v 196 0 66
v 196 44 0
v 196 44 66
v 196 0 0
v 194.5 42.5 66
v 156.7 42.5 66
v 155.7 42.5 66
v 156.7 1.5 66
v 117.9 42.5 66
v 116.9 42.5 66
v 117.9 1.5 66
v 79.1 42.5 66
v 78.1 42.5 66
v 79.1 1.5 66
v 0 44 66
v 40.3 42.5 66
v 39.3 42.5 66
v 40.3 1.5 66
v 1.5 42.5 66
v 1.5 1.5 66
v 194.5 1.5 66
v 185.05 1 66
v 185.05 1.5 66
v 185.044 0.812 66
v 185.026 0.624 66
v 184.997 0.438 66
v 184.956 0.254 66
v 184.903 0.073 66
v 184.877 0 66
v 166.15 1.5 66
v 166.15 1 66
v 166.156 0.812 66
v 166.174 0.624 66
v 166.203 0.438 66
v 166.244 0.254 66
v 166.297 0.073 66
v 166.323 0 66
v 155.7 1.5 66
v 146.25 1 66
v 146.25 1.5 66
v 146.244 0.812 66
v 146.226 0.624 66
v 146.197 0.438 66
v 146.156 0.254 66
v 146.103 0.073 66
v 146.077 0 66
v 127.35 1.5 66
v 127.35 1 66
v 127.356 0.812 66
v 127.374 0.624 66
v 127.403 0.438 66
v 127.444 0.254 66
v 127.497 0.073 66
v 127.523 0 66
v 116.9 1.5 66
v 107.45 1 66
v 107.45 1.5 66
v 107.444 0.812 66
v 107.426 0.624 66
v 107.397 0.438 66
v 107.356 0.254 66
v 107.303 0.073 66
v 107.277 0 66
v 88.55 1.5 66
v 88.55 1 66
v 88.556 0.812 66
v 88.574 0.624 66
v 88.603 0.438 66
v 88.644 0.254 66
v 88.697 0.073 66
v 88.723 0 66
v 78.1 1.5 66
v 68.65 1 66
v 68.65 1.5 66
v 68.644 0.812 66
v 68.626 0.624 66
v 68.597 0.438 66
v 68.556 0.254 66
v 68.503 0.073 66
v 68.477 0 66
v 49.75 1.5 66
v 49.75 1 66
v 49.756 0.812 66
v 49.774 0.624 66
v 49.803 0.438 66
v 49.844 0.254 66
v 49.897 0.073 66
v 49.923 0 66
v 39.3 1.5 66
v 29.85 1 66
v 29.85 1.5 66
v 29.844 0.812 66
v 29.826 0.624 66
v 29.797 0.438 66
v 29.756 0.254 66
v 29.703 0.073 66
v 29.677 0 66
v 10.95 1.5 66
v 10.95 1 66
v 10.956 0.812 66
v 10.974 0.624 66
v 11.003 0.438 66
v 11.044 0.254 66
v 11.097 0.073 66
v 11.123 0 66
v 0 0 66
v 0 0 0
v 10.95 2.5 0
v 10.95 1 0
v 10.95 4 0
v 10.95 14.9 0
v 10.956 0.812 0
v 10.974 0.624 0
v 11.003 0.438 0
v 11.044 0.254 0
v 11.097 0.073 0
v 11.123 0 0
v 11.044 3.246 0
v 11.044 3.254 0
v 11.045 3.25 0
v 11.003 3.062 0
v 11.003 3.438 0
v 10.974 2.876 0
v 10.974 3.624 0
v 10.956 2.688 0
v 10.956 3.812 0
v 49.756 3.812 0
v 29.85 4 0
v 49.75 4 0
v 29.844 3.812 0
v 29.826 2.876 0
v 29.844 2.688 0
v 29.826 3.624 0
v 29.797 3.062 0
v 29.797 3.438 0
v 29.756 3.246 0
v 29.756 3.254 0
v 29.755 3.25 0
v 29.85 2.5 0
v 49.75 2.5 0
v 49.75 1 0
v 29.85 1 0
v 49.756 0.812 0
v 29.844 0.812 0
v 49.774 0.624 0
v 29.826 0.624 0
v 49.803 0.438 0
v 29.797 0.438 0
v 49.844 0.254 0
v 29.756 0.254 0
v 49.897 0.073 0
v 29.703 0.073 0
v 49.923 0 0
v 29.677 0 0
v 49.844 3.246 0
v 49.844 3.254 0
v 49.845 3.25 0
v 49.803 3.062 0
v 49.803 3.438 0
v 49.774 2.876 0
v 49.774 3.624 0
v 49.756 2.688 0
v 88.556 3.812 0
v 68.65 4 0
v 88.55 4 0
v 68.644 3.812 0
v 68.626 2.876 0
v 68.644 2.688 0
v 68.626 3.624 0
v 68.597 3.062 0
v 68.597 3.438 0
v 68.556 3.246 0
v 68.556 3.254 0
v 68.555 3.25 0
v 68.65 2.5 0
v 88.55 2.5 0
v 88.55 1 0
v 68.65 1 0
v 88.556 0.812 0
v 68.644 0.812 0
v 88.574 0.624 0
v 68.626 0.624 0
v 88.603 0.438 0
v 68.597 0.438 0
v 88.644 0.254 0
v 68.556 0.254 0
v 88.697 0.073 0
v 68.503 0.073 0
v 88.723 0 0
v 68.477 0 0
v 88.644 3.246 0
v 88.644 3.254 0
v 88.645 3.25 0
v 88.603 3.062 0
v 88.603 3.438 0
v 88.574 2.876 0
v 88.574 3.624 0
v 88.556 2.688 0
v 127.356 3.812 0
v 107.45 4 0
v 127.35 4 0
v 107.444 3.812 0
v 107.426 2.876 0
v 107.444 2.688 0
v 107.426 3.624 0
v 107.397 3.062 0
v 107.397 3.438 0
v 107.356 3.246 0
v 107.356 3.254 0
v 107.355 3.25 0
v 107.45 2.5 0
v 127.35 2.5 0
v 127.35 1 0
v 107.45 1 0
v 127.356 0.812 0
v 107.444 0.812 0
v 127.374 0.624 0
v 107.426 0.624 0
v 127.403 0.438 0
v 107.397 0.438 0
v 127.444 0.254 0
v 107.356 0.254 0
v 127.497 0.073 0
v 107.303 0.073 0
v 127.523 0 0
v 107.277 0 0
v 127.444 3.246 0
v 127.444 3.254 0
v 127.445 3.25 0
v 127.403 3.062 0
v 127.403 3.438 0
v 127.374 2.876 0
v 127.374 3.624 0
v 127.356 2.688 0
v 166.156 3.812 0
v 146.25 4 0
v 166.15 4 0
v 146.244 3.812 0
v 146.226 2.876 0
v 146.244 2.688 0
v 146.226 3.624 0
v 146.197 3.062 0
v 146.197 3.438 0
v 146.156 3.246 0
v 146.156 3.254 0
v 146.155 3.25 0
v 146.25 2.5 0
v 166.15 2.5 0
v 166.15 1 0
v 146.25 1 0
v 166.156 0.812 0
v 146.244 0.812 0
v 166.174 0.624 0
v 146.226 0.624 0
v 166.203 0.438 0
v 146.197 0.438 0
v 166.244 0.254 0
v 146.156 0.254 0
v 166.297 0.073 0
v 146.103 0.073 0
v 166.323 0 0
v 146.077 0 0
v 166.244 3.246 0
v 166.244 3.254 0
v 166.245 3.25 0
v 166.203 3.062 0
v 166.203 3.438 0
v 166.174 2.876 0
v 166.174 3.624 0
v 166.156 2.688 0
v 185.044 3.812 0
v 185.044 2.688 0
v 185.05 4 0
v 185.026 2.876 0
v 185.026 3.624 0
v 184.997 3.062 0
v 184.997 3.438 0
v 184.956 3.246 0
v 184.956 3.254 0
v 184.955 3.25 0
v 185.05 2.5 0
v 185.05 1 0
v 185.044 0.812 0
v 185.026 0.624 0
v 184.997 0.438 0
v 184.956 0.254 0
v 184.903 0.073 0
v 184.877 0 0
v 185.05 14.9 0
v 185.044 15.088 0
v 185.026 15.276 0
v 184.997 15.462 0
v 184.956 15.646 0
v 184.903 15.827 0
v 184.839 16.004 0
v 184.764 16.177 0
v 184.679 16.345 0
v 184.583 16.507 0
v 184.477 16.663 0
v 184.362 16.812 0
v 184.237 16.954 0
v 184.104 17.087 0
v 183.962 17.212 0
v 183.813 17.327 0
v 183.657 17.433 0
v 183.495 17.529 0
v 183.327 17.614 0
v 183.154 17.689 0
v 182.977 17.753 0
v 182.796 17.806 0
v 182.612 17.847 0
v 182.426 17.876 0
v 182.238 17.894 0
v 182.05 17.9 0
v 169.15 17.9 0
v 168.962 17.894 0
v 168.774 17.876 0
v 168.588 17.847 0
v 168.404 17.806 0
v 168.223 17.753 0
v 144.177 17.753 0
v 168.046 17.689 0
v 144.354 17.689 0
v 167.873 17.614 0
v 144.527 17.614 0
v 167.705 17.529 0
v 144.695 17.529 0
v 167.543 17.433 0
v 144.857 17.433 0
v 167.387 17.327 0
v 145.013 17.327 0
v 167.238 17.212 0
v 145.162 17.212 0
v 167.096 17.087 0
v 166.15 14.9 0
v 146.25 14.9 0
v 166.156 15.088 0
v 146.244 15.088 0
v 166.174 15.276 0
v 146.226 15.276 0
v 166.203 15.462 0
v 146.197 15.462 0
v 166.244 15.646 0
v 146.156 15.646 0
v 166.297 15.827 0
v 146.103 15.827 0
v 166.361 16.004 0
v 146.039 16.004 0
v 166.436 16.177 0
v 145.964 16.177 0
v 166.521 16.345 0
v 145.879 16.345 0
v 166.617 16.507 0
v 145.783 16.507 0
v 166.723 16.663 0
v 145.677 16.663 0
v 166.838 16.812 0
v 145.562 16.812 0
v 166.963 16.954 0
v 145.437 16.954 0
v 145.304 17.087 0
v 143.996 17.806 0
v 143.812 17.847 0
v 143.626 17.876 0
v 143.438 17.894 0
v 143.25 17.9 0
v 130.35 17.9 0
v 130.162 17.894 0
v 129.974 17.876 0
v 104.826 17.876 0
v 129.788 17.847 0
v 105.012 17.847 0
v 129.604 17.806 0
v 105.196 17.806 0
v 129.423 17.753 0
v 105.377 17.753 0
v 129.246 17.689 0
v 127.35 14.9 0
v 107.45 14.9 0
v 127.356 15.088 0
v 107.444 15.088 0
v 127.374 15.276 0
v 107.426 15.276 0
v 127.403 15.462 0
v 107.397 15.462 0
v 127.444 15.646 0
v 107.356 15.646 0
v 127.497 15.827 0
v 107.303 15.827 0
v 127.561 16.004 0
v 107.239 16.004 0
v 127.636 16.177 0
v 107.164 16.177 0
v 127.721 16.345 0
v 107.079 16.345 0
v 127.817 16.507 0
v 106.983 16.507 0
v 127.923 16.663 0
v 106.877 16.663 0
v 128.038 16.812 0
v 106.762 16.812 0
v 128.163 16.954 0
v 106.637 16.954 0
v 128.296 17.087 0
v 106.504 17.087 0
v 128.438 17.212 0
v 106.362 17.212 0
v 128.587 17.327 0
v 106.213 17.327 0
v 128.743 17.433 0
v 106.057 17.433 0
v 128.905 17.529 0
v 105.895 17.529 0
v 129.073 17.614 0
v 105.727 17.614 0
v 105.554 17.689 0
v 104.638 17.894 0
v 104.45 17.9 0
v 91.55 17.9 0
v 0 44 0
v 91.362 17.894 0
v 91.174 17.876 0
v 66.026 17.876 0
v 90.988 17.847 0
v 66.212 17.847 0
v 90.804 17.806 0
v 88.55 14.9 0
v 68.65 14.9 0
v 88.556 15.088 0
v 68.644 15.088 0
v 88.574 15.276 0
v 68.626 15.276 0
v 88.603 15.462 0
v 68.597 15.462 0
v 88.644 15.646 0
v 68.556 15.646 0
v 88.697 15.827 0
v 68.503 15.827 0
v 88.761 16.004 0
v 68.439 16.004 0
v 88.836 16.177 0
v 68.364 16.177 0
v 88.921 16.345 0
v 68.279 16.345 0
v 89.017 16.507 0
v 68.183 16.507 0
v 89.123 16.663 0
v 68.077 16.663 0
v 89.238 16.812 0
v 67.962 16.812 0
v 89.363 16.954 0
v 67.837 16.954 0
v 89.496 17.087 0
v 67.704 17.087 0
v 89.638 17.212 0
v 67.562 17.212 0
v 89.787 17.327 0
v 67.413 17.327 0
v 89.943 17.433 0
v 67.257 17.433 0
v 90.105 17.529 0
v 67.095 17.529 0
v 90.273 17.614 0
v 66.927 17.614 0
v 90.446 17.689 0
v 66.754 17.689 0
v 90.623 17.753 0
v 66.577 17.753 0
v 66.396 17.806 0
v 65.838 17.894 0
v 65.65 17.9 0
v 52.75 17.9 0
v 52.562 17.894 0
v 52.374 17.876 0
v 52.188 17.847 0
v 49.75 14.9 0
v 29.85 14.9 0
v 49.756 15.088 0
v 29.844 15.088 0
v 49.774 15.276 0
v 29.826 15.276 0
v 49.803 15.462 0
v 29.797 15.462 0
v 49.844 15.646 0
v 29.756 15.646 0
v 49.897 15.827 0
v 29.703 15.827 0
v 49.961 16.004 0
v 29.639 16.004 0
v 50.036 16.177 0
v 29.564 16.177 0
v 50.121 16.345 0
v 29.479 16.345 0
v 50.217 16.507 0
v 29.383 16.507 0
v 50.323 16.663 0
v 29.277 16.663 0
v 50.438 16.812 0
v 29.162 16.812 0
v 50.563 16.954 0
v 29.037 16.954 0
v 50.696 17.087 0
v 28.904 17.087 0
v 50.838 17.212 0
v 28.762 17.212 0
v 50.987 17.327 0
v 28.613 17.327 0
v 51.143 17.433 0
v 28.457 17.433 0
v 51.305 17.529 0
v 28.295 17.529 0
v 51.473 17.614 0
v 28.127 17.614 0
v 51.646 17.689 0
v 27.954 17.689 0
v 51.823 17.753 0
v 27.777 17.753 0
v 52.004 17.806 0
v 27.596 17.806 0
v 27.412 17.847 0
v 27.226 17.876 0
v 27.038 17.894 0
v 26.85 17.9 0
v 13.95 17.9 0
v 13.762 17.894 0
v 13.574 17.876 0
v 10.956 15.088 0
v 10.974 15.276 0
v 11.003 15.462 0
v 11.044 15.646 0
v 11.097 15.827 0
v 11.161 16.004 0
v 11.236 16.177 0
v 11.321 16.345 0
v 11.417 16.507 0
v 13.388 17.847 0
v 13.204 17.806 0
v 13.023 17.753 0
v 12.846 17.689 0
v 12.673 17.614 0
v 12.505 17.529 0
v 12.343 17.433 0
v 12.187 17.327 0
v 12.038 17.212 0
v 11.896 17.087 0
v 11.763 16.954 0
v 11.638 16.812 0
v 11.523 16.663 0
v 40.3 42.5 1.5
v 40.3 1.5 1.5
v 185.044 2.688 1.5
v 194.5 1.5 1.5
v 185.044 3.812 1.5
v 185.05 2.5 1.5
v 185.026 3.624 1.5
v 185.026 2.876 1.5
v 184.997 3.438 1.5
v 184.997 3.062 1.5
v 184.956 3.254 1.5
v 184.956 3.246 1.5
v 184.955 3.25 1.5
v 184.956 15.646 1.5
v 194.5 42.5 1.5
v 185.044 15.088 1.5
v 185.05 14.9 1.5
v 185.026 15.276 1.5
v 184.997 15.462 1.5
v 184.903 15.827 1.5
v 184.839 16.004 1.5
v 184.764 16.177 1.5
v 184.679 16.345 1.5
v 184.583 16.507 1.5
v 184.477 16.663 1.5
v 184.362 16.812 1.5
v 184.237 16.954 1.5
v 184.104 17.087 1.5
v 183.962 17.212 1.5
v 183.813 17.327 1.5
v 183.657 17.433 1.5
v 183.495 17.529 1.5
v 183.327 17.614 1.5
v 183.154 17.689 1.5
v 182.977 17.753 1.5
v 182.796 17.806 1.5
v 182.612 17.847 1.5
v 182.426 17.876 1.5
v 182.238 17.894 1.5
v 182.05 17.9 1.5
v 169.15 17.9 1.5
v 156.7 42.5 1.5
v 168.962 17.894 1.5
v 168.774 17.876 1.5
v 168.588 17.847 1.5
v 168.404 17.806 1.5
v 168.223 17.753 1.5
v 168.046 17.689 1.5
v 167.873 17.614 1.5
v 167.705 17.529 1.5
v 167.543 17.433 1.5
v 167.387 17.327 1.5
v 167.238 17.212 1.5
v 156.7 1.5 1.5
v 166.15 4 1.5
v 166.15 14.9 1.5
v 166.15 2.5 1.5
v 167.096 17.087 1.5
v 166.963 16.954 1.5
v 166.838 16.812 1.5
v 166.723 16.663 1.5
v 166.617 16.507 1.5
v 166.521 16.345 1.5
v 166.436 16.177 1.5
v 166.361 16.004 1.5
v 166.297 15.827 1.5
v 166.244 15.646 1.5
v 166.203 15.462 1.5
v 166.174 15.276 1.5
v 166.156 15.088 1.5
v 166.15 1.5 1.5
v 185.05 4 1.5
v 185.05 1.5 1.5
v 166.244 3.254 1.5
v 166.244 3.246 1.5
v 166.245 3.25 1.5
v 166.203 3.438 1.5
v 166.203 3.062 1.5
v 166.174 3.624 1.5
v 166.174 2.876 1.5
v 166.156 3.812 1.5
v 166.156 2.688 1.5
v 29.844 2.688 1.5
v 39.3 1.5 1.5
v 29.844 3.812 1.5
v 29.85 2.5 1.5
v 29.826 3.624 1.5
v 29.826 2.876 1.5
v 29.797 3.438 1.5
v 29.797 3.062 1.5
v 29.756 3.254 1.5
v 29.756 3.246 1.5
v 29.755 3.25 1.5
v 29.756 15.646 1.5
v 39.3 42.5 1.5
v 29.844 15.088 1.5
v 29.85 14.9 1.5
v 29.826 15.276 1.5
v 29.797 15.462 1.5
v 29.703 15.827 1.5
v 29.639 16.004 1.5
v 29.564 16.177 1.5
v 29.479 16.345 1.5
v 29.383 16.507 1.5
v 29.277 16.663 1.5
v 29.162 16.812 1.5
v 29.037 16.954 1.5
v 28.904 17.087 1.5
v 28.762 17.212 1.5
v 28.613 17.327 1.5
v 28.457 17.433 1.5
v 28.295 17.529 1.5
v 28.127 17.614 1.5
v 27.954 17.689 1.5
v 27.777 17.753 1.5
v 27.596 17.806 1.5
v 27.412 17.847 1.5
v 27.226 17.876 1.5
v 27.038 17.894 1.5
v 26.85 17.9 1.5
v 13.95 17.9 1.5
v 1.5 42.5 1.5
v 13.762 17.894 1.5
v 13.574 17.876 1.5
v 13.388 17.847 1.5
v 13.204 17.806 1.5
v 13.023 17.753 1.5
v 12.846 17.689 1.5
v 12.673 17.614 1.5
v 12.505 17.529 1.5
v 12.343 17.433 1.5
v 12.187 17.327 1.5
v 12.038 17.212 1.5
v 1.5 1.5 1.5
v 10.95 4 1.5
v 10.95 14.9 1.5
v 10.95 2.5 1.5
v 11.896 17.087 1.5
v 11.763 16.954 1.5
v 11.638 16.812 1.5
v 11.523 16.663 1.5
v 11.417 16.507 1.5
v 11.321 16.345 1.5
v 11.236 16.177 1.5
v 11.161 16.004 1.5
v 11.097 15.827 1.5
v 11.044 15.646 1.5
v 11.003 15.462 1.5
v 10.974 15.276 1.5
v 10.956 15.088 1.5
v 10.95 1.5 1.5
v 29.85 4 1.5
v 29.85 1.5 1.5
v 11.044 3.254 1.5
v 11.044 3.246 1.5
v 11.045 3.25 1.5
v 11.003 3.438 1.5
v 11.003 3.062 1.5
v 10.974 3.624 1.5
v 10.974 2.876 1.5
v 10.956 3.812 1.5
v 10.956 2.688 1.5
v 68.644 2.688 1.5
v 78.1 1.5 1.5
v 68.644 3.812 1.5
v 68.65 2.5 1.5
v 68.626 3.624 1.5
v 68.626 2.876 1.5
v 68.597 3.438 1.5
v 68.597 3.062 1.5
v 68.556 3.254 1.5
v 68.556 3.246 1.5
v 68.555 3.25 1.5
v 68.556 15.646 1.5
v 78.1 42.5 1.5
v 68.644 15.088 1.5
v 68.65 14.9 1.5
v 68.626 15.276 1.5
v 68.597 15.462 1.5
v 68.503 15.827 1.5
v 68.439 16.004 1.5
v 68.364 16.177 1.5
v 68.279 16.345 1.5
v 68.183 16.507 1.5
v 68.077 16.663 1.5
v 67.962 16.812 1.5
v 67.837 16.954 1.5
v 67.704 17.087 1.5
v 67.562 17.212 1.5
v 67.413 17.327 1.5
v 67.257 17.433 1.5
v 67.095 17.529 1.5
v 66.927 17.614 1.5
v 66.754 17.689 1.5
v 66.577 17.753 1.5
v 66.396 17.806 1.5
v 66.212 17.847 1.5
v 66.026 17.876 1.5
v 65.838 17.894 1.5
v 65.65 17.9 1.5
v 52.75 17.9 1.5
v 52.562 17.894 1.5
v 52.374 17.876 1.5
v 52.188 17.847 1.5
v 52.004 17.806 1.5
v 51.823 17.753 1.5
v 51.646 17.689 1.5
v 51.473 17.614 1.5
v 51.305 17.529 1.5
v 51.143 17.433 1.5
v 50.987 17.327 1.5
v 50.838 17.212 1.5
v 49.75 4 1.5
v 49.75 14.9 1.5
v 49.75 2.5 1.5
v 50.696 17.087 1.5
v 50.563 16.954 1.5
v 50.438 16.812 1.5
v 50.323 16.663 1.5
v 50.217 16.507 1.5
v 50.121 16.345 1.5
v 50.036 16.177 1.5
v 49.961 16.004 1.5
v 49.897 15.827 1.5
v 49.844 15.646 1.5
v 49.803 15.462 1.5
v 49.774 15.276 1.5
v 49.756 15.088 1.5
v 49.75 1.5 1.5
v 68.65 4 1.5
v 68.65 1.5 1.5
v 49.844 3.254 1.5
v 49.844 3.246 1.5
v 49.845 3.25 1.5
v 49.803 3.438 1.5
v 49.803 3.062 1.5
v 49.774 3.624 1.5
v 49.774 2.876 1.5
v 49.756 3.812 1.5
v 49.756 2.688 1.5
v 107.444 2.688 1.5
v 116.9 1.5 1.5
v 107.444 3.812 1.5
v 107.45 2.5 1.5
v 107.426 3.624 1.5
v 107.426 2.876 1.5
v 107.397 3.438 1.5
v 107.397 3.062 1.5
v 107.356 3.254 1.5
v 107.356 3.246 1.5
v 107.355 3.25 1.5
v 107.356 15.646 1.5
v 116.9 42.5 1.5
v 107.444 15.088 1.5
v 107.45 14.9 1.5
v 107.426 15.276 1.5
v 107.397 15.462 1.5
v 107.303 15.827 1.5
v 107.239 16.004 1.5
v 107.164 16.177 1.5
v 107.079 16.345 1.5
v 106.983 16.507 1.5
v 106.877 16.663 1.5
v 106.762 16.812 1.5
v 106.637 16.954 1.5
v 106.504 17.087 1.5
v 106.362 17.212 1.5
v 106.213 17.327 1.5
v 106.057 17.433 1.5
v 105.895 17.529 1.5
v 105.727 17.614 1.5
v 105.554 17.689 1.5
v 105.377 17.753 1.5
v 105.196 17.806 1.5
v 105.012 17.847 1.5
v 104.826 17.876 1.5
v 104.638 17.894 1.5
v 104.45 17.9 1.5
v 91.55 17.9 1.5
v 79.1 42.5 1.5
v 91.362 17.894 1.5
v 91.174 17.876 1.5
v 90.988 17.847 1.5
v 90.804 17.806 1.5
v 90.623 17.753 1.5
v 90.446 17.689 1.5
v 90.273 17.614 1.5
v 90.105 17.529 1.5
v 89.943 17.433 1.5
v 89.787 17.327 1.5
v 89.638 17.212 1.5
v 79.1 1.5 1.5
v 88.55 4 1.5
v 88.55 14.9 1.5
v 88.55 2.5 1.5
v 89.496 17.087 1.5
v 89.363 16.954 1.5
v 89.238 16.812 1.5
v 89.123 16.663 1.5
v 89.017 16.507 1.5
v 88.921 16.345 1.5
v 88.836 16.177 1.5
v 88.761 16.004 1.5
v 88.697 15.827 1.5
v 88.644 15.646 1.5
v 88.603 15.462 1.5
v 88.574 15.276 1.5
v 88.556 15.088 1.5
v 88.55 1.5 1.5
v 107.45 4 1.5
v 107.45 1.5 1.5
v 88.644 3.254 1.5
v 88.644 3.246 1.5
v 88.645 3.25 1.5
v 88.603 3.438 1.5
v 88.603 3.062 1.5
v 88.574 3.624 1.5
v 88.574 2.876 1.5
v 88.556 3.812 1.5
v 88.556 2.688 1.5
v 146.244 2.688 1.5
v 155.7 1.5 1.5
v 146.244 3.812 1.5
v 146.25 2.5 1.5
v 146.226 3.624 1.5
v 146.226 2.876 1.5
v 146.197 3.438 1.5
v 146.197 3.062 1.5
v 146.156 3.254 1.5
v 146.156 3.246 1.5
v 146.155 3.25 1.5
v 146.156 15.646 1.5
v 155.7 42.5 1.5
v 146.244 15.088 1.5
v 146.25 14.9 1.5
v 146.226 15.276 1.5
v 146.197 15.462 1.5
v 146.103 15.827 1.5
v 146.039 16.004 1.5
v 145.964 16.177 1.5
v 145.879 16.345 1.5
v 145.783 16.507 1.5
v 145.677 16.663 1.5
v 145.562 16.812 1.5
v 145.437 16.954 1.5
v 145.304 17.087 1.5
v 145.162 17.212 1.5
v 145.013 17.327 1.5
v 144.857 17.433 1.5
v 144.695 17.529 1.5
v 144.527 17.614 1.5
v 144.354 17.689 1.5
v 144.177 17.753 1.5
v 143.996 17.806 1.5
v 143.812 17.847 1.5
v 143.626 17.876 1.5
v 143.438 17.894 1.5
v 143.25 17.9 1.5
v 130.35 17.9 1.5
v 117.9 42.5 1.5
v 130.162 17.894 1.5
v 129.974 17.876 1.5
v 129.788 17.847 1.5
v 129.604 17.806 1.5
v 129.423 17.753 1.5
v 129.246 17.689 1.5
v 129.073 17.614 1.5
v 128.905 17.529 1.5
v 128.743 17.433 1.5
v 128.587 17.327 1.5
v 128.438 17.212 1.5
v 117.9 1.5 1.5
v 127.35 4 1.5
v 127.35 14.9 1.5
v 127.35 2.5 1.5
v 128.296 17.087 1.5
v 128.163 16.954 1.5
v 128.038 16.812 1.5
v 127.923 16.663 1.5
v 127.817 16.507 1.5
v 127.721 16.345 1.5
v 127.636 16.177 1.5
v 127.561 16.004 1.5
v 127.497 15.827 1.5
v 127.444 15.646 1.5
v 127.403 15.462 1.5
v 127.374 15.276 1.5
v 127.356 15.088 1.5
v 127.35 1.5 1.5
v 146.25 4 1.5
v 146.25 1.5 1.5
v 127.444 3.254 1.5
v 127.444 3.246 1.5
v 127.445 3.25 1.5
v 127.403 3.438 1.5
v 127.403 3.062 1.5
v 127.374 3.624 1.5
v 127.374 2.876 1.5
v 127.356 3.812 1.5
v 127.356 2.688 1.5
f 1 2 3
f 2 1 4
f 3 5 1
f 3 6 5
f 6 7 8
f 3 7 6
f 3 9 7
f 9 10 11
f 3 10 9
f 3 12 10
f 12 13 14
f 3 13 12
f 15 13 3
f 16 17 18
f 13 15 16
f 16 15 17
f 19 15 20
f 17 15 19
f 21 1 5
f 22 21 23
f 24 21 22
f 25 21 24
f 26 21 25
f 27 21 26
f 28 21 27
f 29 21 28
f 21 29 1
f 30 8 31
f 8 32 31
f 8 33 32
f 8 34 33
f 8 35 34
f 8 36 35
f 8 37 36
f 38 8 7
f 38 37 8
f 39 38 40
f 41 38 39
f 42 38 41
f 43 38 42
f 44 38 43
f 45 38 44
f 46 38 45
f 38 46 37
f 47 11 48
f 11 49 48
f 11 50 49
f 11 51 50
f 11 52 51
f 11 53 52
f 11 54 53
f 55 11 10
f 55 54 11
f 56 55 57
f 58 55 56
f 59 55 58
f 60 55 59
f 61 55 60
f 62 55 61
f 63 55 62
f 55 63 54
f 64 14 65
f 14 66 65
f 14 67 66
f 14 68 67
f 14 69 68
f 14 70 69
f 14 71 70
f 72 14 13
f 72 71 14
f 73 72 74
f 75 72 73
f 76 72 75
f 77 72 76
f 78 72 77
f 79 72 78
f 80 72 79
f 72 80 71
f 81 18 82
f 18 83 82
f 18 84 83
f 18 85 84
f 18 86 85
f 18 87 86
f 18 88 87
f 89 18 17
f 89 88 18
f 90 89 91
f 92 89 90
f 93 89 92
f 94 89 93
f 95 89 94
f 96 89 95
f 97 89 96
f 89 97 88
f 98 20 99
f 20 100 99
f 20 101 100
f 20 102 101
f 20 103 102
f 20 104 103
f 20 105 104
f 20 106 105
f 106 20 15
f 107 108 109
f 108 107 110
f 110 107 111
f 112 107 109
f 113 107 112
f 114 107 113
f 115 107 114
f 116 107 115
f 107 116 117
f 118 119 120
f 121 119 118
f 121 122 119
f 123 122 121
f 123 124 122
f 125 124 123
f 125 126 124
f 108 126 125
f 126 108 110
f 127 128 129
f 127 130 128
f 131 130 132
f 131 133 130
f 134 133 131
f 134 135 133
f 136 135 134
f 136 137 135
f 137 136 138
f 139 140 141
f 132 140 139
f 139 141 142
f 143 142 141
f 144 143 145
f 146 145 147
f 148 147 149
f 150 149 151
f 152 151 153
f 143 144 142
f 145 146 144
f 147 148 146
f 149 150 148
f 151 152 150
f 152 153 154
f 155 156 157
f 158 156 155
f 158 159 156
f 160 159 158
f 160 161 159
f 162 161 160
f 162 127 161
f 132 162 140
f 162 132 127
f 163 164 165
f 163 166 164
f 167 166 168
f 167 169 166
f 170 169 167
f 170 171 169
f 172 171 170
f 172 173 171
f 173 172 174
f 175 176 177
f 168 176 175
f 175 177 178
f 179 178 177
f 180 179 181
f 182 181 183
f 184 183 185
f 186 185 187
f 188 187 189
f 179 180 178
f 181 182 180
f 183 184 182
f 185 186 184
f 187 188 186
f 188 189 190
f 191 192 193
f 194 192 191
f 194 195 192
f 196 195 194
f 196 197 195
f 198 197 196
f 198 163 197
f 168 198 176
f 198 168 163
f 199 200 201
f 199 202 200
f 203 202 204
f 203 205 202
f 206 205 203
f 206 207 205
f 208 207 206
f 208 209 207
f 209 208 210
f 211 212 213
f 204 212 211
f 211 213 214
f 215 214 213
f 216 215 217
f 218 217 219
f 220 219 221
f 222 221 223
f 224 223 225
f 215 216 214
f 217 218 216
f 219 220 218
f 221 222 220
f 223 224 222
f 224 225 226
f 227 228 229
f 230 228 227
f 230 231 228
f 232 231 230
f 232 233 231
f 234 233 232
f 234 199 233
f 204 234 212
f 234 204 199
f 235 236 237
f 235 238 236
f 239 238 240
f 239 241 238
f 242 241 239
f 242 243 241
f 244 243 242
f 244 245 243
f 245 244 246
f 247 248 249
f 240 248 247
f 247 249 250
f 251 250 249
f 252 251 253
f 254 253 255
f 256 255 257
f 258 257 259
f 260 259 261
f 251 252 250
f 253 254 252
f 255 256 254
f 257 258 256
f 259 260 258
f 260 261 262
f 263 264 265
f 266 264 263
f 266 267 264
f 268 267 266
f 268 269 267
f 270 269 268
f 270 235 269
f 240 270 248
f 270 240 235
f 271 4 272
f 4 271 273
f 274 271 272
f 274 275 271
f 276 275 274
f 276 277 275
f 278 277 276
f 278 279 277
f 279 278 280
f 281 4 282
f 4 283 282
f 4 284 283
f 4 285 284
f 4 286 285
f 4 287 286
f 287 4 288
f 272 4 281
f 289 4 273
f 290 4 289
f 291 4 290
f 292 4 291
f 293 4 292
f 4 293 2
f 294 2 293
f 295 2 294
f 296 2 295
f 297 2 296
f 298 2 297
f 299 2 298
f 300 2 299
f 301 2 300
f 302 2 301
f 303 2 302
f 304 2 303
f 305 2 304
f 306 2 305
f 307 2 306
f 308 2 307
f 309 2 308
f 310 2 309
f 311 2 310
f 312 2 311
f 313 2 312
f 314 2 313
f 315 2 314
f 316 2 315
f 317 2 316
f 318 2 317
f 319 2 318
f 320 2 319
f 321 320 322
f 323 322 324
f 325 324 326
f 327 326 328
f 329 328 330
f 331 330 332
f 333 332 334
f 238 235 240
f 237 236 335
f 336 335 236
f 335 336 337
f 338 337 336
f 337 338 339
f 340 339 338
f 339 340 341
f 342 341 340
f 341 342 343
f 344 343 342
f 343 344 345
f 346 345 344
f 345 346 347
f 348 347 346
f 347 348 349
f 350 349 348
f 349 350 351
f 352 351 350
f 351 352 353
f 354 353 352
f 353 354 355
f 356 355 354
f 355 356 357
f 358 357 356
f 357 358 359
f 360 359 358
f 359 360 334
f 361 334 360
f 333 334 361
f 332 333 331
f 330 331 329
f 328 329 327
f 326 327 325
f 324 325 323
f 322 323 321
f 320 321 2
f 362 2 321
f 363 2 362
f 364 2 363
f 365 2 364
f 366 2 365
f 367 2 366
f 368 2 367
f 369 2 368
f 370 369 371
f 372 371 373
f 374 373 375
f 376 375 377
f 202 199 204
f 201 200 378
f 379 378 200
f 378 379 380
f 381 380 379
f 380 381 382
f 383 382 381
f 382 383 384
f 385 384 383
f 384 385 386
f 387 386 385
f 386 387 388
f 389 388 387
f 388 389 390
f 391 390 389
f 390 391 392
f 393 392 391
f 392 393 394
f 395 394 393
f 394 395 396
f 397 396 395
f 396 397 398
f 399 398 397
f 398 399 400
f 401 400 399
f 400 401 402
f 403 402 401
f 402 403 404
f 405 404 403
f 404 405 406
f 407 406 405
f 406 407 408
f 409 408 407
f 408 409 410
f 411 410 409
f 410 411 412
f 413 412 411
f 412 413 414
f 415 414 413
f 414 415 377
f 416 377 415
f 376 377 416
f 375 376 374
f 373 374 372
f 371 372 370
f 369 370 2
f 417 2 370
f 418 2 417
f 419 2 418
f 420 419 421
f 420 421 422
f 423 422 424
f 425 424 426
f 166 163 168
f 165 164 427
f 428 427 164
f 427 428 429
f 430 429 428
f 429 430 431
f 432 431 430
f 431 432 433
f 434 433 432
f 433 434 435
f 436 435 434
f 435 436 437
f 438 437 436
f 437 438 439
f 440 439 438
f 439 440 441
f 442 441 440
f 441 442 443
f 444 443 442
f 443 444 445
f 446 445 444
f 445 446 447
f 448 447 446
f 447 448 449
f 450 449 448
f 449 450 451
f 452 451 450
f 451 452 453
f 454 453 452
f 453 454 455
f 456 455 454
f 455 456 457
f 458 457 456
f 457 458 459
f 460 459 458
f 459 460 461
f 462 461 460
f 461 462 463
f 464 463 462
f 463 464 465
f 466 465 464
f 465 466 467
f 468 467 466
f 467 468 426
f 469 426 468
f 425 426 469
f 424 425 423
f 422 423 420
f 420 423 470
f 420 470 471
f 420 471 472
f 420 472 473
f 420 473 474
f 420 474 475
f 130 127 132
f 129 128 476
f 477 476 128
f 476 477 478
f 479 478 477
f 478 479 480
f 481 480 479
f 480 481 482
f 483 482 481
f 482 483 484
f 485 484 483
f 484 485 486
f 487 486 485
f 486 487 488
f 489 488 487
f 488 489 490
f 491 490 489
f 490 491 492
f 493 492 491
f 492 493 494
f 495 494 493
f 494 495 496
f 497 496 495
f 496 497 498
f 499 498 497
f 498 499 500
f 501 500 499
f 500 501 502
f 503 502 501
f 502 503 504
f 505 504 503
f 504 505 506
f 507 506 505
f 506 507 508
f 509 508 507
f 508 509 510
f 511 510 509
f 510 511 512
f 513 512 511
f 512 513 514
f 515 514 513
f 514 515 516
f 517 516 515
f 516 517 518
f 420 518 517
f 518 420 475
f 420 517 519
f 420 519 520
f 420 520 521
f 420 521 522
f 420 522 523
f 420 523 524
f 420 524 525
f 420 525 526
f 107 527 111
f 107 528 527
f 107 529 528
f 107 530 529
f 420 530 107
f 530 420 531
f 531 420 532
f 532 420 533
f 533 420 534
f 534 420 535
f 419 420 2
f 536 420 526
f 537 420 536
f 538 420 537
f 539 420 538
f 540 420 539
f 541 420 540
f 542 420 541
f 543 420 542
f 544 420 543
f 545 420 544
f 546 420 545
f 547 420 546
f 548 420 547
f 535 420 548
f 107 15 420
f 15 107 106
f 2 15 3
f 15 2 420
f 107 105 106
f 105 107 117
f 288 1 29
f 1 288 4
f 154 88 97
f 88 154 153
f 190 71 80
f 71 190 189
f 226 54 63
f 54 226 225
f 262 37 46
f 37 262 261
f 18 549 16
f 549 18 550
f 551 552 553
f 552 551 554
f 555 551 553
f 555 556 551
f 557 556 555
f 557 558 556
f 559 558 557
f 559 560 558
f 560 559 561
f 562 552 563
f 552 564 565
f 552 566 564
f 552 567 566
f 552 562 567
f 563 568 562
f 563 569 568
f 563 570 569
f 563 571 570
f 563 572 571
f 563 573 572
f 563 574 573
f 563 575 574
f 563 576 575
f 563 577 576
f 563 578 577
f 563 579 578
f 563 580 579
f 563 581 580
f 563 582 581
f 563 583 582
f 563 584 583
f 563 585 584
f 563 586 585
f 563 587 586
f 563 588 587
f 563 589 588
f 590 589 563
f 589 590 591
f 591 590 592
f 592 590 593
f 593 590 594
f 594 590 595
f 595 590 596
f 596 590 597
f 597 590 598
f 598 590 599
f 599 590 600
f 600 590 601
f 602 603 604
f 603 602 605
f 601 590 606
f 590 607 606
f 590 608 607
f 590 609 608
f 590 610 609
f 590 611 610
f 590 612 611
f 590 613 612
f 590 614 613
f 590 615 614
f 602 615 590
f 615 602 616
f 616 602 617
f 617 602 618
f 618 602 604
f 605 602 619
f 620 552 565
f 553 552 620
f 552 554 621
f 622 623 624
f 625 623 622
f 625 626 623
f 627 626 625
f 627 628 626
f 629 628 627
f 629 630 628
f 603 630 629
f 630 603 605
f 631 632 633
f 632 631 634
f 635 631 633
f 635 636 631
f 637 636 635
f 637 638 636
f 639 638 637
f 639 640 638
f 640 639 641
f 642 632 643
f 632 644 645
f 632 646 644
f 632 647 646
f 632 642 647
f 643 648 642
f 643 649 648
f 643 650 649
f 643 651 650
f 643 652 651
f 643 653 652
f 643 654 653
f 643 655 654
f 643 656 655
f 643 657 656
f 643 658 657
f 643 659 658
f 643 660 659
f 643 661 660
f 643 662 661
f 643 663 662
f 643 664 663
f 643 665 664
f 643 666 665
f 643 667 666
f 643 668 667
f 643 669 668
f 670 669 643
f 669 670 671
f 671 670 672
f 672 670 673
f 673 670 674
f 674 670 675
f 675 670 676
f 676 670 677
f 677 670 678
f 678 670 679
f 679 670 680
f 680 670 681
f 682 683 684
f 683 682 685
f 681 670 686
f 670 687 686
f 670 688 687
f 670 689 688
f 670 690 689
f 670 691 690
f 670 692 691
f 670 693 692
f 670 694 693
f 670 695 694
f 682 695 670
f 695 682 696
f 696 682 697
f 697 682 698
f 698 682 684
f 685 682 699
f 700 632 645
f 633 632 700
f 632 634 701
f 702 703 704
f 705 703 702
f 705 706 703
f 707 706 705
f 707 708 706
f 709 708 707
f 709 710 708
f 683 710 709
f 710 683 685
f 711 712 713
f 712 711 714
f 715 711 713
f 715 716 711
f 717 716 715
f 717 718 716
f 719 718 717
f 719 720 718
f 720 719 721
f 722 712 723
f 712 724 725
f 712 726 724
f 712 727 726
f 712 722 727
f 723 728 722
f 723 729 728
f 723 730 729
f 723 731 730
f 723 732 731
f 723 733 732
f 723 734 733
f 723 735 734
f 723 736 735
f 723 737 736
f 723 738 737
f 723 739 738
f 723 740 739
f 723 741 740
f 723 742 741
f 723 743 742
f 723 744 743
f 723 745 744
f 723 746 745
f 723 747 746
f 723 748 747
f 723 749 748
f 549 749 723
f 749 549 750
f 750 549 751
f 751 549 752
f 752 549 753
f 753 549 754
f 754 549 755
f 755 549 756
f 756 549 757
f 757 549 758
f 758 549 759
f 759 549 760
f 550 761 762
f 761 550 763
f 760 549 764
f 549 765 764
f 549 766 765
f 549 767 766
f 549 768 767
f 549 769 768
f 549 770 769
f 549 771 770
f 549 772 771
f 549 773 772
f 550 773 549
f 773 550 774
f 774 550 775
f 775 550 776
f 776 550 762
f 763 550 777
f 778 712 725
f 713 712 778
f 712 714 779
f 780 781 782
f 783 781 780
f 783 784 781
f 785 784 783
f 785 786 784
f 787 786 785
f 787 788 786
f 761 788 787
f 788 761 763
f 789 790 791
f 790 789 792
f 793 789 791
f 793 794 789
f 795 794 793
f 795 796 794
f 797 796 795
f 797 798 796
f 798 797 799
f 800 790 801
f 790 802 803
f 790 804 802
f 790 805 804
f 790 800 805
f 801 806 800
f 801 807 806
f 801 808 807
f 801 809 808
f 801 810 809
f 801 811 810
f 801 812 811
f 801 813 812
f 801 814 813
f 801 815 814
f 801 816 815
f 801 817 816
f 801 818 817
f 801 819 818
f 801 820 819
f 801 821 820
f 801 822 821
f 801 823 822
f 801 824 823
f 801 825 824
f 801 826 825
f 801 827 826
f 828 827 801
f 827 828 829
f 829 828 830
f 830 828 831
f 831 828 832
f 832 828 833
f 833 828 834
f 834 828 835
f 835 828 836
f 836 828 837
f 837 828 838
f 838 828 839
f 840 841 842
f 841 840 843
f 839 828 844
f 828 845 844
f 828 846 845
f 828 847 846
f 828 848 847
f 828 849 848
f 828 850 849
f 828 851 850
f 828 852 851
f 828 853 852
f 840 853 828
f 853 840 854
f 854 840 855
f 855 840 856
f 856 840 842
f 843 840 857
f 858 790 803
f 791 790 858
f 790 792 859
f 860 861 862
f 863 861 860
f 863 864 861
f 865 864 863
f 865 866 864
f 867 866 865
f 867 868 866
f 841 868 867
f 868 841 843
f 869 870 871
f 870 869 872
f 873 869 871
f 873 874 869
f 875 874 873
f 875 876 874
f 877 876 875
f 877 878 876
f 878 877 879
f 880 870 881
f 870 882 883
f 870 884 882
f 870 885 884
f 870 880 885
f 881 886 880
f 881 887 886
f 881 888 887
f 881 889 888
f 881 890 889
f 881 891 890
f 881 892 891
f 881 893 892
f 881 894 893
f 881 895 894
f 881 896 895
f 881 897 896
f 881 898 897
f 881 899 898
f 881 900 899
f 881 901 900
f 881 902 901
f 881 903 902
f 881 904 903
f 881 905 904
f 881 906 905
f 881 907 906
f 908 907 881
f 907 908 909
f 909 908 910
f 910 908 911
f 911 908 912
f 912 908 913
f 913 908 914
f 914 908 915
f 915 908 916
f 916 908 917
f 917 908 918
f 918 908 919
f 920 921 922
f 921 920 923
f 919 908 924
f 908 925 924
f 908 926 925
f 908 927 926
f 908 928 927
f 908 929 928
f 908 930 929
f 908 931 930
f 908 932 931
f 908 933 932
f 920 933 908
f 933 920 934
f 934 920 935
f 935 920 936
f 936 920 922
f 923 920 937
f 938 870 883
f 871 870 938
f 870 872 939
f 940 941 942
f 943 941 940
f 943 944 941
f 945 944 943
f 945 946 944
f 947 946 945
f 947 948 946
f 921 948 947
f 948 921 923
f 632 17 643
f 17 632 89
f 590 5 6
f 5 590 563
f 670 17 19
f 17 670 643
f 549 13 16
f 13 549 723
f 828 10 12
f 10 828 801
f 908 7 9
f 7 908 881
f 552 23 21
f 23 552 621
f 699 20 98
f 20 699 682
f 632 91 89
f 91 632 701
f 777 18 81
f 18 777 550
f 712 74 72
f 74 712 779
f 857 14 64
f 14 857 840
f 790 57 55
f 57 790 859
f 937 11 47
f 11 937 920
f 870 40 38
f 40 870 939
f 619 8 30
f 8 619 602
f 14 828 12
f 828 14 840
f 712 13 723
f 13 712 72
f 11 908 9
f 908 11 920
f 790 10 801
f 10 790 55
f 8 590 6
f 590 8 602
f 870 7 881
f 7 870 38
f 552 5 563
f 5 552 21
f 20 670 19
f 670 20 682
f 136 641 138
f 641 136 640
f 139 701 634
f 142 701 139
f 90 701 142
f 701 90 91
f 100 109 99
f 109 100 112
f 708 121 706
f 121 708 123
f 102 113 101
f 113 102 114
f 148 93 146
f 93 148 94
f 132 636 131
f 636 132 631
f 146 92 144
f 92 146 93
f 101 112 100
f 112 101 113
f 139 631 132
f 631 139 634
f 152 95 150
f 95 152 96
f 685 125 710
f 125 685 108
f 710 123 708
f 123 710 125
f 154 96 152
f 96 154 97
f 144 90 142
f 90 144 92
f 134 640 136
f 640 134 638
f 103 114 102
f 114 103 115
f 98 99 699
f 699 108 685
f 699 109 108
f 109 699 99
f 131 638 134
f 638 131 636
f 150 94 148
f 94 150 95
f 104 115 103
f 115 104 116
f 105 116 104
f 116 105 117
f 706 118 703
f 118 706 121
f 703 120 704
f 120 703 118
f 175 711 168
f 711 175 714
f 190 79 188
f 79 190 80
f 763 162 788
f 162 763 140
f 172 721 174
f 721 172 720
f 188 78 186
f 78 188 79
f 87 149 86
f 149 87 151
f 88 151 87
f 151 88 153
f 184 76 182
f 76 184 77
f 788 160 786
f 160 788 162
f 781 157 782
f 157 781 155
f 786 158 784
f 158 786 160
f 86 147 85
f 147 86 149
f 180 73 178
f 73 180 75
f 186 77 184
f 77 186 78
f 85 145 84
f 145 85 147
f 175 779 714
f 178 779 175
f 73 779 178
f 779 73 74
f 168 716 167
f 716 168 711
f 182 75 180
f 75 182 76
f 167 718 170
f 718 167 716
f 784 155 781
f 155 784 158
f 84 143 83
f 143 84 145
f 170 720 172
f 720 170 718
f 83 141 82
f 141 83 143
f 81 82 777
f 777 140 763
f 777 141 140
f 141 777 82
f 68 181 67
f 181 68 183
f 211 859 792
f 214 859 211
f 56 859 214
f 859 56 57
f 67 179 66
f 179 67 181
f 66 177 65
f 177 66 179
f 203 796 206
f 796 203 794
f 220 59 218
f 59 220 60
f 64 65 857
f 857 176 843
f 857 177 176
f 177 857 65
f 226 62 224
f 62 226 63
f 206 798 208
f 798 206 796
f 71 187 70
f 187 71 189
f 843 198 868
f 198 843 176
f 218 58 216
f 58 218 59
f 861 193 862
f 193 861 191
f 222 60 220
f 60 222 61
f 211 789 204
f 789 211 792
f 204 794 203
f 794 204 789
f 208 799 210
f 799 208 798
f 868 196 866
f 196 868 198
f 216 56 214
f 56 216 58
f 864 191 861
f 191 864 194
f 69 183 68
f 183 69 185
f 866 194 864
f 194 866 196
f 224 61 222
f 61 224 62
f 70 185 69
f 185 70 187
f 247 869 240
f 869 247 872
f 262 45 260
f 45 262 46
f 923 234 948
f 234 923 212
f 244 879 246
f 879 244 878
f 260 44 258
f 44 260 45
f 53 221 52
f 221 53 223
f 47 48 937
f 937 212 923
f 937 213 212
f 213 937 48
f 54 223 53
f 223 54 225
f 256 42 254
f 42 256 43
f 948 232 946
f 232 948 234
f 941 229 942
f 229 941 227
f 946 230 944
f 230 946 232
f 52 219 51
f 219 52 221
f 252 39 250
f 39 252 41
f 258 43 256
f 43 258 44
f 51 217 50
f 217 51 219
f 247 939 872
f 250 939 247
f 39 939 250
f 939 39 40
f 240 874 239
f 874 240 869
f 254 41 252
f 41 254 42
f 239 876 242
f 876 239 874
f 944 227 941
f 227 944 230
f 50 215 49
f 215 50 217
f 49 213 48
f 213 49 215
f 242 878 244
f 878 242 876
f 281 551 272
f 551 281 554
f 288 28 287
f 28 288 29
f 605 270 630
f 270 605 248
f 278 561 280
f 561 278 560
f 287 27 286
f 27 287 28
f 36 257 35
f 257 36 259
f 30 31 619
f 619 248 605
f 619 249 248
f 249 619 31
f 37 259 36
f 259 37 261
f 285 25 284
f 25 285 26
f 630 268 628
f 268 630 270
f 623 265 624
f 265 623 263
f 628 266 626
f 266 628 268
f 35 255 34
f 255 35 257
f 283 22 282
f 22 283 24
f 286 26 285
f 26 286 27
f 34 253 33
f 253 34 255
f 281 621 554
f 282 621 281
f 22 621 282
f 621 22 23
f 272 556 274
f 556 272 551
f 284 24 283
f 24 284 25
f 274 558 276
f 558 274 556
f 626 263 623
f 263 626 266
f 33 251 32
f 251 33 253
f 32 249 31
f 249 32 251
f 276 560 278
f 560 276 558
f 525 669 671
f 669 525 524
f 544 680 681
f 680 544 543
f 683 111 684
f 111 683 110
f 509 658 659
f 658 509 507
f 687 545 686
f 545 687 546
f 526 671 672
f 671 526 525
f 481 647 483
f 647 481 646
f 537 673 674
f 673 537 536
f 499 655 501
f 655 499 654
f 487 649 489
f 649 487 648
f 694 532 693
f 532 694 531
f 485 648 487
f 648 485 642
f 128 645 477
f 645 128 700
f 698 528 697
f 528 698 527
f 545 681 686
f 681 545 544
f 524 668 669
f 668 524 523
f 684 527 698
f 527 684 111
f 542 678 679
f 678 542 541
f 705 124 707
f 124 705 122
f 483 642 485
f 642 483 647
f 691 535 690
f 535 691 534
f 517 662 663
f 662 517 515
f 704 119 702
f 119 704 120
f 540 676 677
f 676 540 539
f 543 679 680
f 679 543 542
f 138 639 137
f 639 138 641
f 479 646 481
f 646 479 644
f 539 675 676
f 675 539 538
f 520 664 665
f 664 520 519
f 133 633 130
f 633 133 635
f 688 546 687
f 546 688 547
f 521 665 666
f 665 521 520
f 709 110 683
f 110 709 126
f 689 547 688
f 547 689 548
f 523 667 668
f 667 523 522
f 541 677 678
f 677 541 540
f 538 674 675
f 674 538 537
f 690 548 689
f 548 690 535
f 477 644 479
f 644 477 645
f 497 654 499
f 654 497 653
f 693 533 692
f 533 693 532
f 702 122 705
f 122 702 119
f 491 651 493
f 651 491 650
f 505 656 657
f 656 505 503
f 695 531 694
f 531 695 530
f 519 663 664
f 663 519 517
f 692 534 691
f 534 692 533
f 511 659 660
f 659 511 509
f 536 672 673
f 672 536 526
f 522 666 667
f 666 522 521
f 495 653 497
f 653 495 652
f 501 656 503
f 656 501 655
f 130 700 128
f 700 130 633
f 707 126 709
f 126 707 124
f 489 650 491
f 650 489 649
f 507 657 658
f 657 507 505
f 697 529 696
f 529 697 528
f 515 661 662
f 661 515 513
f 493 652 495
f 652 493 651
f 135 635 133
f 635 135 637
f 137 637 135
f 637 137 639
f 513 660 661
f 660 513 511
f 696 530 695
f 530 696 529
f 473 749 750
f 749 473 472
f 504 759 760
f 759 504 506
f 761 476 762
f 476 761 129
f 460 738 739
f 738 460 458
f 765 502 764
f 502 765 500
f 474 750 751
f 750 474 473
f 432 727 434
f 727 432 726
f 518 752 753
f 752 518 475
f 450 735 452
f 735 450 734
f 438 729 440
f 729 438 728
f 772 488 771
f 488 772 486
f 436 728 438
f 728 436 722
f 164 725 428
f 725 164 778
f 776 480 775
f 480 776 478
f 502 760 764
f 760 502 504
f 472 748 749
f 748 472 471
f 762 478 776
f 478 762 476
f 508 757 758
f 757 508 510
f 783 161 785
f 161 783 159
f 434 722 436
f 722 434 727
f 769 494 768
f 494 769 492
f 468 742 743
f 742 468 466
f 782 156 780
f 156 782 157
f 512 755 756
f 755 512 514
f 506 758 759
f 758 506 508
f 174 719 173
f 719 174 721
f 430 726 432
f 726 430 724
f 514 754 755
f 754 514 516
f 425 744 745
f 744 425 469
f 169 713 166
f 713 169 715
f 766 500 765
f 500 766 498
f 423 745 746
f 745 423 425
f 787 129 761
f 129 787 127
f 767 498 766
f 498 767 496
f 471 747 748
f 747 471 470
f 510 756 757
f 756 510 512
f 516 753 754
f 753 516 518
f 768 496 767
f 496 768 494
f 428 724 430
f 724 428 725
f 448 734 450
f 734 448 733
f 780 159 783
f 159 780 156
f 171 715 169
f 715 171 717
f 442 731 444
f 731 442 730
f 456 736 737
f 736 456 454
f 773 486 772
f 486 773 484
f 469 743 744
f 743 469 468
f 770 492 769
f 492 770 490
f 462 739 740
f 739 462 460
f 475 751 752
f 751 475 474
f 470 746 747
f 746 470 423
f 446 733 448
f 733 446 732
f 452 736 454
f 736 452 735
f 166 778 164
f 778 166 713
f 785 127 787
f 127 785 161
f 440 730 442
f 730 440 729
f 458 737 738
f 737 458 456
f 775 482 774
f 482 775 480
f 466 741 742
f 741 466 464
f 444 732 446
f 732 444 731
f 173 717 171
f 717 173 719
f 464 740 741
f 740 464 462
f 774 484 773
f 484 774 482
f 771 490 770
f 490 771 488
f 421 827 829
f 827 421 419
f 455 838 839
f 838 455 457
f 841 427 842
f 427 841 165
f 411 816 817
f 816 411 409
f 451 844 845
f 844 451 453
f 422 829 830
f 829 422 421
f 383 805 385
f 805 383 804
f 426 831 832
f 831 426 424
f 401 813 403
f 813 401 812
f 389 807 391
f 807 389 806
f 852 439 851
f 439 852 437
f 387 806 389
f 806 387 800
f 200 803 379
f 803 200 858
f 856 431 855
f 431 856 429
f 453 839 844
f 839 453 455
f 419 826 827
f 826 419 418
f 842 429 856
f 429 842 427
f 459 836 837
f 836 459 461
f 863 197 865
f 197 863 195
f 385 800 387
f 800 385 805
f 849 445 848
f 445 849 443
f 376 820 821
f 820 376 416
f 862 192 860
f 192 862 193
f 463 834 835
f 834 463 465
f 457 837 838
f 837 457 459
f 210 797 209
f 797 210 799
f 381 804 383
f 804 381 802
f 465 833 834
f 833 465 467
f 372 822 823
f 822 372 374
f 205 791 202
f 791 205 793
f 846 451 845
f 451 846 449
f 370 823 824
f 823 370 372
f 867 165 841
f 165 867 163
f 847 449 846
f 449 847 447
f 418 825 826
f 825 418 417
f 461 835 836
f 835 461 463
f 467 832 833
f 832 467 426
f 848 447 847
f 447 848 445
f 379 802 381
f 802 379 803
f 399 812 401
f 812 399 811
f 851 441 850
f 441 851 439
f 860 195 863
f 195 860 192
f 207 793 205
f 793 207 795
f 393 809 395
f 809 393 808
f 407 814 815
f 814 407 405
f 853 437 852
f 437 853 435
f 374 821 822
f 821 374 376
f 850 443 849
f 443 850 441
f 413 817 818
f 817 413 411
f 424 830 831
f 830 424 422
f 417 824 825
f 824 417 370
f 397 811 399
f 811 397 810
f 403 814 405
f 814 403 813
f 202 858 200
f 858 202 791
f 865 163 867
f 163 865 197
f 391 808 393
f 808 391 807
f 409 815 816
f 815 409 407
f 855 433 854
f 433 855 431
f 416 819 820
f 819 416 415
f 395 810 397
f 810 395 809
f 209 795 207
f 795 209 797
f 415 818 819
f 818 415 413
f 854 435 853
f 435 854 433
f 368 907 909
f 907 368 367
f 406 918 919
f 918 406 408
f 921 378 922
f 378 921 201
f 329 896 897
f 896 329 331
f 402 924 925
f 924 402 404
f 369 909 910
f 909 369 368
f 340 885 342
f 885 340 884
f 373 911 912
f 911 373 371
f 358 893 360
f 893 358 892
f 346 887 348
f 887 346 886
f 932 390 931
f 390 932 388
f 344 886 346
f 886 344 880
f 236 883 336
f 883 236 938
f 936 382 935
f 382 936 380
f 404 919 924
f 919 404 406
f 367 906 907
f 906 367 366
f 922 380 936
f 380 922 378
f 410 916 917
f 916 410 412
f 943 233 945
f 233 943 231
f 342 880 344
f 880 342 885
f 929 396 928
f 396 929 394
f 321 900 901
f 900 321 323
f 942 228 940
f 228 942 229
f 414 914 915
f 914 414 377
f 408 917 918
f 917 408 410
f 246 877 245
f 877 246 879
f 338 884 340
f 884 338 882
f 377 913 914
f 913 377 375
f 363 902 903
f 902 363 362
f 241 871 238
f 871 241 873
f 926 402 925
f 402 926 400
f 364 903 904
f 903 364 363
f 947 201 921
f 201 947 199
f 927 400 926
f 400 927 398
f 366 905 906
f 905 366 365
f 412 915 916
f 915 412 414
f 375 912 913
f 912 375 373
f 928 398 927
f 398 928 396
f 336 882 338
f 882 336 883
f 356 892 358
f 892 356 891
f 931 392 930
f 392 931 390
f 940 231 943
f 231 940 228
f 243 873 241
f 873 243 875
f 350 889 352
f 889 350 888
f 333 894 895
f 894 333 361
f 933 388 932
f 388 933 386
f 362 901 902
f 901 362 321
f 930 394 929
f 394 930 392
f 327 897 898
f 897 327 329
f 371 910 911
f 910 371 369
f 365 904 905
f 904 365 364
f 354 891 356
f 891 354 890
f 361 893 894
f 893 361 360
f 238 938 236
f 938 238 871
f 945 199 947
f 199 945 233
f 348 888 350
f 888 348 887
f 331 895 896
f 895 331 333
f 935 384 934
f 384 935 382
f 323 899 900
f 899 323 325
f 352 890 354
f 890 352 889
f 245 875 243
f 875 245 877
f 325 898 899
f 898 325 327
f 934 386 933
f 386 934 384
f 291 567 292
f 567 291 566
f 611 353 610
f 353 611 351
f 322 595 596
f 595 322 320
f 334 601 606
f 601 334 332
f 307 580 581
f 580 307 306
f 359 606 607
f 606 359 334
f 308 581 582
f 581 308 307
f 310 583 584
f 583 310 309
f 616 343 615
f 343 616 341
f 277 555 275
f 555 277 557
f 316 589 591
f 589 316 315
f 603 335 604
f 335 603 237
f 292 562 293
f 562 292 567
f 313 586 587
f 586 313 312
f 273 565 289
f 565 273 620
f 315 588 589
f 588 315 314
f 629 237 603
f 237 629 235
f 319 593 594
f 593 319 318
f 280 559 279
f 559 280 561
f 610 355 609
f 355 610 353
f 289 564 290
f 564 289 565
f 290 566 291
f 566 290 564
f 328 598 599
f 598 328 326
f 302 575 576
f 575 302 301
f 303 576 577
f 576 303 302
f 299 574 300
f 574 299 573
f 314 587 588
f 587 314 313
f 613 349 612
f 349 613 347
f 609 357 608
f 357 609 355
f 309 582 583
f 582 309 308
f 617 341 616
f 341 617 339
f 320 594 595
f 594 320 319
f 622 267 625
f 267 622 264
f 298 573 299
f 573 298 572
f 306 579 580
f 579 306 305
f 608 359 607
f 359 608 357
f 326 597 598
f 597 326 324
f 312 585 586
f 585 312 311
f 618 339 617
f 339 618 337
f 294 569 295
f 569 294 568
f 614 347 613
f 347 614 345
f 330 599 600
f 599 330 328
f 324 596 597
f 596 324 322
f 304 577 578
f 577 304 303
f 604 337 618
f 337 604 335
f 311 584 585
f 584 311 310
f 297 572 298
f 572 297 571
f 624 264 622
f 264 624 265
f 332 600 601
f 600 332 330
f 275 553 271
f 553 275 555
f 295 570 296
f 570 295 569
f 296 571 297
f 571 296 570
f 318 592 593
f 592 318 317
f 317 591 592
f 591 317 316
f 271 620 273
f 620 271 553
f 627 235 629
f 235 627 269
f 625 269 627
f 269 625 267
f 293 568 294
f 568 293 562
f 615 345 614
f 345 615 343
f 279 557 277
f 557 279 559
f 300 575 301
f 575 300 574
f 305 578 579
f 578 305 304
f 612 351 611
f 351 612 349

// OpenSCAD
include <boardgame_insert_toolkit_lib.2.scad>;

// determines whether lids are output.
g_b_print_lid = true;

// determines whether boxes are output.
g_b_print_box = true; 

// Focus on one box
g_isolated_print_box = ""; 

// Used to visualize how all of the boxes fit together. 
g_b_visualization = false;          
        
// this is the outer wall thickness. 
//Default = 1.5mm
g_wall_thickness = 1.5;

// The tolerance value is extra space put between planes of the lid and box that fit together.
// Increase the tolerance to loosen the fit and decrease it to tighten it.
//
// Note that the tolerance is applied exclusively to the lid.
// So if the lid is too tight or too loose, change this value ( up for looser fit, down for tighter fit ) and 
// you only need to reprint the lid.
// 
// The exception is the stackable box, where the bottom of the box is the lid of the box below,
// in which case the tolerance also affects that box bottom.
//
g_tolerance = 0.15;

// This adjusts the position of the lid detents downward. 
// The larger the value, the bigger the gap between the lid and the box.
g_tolerance_detents_pos = 0.1;

aw_box_x = 196.0; 
aw_box_y = 44.0;
aw_box_z = 66.0;

//aw_padding = 0.0;
//aw_cave_width = 35.0 + aw_padding;
//aw_curse_width = 25.0 + aw_padding;
//aw_coin_width = 40.0 + aw_padding;
//aw_guardian_width = 30.0 + aw_padding;

aw_container_width = 37.8; //(196.0 - 6 * g_wall_thickness) / 5;

data =
  [
    [
      "small tiles",
      [
        [ BOX_SIZE_XYZ, [aw_box_x, aw_box_y, aw_box_z] ],
        [ BOX_NO_LID_B, t],

        [
          BOX_COMPONENT,
          [
            [ CMP_NUM_COMPARTMENTS_XY, [5, 1] ],
            [
              CMP_COMPARTMENT_SIZE_XYZ,
              [
                aw_container_width,
                aw_box_y - 2 * g_wall_thickness,
                aw_box_z - 1 * g_wall_thickness
              ]
            ],
            [ POSITION_XY, [ 0, CENTER ] ],
            [ CMP_CUTOUT_SIDES_4B, [ t, f, f, f ] ],
            [ CMP_CUTOUT_DEPTH_PCT, 40 ],
            [ CMP_CUTOUT_WIDTH_PCT, 50 ],
            [ CMP_CUTOUT_HEIGHT_PCT, 100 ],
          ]
        ],
      ]
    ]
  ];


MakeAll();
